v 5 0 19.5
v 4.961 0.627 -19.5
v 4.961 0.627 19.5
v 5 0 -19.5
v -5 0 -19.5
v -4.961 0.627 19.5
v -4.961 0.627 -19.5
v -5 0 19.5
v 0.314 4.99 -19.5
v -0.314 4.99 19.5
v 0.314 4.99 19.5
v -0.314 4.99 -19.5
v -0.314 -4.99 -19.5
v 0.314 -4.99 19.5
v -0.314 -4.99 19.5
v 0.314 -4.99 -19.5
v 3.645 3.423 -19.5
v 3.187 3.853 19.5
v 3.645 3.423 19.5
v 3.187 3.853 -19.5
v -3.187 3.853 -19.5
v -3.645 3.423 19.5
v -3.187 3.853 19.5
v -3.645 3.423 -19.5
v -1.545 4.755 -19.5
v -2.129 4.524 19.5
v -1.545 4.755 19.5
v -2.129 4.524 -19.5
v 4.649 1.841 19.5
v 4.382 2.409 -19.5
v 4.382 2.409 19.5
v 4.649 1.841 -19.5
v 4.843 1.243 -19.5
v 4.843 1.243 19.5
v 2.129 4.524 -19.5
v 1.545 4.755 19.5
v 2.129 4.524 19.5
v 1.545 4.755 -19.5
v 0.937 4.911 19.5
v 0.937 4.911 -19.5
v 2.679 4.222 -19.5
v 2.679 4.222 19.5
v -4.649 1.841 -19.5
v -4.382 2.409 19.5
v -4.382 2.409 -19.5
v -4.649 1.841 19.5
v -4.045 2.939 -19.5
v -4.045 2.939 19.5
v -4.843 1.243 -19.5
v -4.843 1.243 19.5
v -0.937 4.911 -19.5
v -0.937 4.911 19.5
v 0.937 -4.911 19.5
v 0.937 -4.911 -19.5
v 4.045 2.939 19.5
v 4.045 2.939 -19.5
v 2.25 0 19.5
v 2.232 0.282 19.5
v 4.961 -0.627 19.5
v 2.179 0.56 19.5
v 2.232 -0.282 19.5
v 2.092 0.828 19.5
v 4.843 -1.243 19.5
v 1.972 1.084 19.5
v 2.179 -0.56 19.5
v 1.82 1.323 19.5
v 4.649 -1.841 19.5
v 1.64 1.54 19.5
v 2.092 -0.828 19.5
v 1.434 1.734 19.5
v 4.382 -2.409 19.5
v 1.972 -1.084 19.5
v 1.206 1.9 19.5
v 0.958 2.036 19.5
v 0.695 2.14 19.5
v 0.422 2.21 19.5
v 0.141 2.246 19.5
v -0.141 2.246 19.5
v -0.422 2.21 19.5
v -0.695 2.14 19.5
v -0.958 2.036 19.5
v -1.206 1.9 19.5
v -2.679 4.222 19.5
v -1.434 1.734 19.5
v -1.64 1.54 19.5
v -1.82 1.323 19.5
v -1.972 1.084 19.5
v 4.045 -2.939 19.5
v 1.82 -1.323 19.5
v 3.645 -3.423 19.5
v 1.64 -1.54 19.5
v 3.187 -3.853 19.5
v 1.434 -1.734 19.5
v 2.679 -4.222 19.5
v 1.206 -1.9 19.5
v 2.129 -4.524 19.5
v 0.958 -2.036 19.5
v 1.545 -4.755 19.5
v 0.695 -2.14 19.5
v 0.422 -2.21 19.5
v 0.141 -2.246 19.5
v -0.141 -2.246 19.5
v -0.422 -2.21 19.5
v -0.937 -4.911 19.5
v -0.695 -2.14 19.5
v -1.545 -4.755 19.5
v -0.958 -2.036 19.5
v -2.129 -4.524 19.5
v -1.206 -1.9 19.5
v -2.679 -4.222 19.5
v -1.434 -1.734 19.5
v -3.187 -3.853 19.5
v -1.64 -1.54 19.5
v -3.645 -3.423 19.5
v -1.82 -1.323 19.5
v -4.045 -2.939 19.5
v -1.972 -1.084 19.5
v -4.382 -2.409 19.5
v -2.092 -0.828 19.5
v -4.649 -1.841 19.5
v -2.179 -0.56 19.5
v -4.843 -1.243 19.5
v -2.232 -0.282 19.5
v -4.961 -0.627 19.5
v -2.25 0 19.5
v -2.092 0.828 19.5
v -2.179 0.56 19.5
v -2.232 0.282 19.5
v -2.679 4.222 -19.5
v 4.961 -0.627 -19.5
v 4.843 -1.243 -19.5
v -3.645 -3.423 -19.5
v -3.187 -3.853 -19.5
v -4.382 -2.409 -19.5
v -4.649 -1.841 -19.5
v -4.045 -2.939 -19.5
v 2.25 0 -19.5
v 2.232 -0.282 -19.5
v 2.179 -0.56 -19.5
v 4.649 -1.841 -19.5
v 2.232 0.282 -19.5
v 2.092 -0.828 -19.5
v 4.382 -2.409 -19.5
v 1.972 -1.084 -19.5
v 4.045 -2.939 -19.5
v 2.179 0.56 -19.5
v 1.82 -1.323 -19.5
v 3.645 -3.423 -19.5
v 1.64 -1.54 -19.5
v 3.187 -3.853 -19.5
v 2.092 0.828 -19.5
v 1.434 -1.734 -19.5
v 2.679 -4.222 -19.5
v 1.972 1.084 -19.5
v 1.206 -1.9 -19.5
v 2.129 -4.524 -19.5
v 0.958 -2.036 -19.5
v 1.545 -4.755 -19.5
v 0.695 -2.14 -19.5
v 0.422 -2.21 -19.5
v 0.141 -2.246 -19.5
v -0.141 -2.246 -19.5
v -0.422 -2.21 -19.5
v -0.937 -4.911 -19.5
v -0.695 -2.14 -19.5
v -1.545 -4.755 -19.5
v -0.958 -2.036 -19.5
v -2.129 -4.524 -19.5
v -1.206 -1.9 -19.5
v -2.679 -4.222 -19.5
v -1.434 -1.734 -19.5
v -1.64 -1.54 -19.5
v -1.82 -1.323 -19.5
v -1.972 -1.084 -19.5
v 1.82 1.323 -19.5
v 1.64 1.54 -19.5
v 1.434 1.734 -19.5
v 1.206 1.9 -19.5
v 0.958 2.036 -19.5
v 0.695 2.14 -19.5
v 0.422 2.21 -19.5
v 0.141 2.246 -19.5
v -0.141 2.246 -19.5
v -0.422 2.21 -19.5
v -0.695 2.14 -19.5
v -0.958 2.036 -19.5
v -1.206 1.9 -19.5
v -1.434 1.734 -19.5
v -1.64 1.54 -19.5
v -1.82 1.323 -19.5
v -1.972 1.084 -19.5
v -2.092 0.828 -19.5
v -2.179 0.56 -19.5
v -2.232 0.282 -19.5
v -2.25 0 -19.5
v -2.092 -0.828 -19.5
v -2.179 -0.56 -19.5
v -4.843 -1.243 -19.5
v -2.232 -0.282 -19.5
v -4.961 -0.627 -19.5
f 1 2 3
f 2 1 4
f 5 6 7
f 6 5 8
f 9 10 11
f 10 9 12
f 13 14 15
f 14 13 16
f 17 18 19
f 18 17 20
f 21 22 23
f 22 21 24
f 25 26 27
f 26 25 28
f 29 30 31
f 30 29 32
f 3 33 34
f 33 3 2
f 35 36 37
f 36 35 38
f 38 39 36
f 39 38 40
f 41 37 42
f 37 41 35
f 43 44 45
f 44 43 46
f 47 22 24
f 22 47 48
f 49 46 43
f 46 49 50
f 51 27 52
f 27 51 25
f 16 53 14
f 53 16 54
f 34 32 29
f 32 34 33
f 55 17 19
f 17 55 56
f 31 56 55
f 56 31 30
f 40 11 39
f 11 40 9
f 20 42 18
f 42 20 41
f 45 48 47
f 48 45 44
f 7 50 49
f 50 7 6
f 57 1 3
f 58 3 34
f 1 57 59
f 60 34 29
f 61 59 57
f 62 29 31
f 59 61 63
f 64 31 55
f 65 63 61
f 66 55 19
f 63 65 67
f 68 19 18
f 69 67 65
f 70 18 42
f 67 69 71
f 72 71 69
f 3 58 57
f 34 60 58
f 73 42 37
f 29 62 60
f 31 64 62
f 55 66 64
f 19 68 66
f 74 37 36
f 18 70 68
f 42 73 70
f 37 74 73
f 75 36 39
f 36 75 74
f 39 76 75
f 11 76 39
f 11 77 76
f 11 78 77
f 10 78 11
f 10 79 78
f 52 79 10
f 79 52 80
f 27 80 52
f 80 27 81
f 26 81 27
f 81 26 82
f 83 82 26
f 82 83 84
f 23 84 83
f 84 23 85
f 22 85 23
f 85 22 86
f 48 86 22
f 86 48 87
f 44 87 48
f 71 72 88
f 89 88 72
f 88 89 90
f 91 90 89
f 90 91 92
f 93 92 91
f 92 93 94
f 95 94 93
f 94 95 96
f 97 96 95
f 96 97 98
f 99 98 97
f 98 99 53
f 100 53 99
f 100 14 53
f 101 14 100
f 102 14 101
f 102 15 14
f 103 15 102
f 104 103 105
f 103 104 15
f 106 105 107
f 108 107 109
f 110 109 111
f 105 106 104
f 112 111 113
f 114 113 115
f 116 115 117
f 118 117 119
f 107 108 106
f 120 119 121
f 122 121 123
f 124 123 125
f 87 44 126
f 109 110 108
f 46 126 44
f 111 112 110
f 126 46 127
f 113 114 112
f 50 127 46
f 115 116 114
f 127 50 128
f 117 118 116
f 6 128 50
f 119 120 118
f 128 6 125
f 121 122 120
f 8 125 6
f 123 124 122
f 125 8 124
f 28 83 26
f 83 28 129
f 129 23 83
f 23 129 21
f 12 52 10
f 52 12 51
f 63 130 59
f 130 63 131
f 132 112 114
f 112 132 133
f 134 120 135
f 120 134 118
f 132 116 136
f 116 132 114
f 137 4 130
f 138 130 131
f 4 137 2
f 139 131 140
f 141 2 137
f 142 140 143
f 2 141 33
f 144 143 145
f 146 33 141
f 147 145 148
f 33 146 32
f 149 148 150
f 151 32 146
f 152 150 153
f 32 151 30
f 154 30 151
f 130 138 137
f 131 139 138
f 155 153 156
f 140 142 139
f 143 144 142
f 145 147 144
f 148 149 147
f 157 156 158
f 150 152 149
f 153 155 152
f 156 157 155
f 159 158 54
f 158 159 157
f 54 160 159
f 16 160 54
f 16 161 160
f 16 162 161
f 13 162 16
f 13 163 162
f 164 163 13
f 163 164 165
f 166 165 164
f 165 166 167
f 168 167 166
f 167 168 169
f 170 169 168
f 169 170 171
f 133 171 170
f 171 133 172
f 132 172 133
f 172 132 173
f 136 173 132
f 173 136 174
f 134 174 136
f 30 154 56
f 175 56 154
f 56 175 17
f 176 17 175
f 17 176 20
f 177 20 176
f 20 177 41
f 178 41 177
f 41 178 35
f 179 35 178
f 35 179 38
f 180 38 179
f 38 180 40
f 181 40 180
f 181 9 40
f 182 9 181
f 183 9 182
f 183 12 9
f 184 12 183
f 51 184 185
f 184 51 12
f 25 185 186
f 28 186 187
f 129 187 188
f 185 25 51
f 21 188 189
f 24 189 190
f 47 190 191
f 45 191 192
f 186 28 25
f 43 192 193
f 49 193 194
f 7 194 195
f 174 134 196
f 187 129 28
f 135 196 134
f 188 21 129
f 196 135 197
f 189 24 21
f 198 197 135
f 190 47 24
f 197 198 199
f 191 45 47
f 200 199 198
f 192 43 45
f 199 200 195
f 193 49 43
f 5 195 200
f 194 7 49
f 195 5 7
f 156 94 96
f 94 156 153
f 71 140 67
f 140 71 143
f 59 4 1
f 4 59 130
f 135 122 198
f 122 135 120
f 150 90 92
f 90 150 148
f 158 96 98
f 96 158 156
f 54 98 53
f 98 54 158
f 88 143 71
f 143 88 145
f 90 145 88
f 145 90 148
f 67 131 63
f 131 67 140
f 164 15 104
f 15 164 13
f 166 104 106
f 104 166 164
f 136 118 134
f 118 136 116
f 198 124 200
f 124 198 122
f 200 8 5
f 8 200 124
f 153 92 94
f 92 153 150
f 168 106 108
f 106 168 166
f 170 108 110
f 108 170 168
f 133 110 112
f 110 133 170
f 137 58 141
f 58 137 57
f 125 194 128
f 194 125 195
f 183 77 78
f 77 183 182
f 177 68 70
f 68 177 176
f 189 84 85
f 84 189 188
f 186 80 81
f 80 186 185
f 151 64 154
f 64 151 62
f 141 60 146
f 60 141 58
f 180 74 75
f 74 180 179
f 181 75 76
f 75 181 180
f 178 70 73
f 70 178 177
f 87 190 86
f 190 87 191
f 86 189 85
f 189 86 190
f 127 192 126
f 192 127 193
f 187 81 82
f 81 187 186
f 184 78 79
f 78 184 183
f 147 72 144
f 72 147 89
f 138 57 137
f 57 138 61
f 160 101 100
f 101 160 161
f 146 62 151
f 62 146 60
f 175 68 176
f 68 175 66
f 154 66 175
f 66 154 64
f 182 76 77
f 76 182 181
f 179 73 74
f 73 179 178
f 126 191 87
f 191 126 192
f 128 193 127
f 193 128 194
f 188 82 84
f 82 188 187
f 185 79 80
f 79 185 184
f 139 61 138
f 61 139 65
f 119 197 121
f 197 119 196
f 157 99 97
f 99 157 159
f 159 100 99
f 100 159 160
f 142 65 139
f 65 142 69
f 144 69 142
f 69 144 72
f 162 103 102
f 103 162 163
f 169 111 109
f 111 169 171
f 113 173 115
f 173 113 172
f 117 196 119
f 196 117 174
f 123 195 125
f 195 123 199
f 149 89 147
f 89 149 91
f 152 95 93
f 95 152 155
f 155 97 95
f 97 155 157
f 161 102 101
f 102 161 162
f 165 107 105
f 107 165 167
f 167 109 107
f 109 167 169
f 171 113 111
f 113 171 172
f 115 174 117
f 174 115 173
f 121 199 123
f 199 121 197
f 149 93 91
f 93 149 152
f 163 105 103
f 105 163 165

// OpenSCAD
$fn = 50;


difference() {
	union() {
		translate(v = [0, 0, -19.5000000000]) {
			cylinder(h = 39, r = 5.0000000000);
		}
	}
	union() {
		translate(v = [0, 0, -100.0000000000]) {
			cylinder(h = 200, r = 2.2500000000);
		}
	}
}
